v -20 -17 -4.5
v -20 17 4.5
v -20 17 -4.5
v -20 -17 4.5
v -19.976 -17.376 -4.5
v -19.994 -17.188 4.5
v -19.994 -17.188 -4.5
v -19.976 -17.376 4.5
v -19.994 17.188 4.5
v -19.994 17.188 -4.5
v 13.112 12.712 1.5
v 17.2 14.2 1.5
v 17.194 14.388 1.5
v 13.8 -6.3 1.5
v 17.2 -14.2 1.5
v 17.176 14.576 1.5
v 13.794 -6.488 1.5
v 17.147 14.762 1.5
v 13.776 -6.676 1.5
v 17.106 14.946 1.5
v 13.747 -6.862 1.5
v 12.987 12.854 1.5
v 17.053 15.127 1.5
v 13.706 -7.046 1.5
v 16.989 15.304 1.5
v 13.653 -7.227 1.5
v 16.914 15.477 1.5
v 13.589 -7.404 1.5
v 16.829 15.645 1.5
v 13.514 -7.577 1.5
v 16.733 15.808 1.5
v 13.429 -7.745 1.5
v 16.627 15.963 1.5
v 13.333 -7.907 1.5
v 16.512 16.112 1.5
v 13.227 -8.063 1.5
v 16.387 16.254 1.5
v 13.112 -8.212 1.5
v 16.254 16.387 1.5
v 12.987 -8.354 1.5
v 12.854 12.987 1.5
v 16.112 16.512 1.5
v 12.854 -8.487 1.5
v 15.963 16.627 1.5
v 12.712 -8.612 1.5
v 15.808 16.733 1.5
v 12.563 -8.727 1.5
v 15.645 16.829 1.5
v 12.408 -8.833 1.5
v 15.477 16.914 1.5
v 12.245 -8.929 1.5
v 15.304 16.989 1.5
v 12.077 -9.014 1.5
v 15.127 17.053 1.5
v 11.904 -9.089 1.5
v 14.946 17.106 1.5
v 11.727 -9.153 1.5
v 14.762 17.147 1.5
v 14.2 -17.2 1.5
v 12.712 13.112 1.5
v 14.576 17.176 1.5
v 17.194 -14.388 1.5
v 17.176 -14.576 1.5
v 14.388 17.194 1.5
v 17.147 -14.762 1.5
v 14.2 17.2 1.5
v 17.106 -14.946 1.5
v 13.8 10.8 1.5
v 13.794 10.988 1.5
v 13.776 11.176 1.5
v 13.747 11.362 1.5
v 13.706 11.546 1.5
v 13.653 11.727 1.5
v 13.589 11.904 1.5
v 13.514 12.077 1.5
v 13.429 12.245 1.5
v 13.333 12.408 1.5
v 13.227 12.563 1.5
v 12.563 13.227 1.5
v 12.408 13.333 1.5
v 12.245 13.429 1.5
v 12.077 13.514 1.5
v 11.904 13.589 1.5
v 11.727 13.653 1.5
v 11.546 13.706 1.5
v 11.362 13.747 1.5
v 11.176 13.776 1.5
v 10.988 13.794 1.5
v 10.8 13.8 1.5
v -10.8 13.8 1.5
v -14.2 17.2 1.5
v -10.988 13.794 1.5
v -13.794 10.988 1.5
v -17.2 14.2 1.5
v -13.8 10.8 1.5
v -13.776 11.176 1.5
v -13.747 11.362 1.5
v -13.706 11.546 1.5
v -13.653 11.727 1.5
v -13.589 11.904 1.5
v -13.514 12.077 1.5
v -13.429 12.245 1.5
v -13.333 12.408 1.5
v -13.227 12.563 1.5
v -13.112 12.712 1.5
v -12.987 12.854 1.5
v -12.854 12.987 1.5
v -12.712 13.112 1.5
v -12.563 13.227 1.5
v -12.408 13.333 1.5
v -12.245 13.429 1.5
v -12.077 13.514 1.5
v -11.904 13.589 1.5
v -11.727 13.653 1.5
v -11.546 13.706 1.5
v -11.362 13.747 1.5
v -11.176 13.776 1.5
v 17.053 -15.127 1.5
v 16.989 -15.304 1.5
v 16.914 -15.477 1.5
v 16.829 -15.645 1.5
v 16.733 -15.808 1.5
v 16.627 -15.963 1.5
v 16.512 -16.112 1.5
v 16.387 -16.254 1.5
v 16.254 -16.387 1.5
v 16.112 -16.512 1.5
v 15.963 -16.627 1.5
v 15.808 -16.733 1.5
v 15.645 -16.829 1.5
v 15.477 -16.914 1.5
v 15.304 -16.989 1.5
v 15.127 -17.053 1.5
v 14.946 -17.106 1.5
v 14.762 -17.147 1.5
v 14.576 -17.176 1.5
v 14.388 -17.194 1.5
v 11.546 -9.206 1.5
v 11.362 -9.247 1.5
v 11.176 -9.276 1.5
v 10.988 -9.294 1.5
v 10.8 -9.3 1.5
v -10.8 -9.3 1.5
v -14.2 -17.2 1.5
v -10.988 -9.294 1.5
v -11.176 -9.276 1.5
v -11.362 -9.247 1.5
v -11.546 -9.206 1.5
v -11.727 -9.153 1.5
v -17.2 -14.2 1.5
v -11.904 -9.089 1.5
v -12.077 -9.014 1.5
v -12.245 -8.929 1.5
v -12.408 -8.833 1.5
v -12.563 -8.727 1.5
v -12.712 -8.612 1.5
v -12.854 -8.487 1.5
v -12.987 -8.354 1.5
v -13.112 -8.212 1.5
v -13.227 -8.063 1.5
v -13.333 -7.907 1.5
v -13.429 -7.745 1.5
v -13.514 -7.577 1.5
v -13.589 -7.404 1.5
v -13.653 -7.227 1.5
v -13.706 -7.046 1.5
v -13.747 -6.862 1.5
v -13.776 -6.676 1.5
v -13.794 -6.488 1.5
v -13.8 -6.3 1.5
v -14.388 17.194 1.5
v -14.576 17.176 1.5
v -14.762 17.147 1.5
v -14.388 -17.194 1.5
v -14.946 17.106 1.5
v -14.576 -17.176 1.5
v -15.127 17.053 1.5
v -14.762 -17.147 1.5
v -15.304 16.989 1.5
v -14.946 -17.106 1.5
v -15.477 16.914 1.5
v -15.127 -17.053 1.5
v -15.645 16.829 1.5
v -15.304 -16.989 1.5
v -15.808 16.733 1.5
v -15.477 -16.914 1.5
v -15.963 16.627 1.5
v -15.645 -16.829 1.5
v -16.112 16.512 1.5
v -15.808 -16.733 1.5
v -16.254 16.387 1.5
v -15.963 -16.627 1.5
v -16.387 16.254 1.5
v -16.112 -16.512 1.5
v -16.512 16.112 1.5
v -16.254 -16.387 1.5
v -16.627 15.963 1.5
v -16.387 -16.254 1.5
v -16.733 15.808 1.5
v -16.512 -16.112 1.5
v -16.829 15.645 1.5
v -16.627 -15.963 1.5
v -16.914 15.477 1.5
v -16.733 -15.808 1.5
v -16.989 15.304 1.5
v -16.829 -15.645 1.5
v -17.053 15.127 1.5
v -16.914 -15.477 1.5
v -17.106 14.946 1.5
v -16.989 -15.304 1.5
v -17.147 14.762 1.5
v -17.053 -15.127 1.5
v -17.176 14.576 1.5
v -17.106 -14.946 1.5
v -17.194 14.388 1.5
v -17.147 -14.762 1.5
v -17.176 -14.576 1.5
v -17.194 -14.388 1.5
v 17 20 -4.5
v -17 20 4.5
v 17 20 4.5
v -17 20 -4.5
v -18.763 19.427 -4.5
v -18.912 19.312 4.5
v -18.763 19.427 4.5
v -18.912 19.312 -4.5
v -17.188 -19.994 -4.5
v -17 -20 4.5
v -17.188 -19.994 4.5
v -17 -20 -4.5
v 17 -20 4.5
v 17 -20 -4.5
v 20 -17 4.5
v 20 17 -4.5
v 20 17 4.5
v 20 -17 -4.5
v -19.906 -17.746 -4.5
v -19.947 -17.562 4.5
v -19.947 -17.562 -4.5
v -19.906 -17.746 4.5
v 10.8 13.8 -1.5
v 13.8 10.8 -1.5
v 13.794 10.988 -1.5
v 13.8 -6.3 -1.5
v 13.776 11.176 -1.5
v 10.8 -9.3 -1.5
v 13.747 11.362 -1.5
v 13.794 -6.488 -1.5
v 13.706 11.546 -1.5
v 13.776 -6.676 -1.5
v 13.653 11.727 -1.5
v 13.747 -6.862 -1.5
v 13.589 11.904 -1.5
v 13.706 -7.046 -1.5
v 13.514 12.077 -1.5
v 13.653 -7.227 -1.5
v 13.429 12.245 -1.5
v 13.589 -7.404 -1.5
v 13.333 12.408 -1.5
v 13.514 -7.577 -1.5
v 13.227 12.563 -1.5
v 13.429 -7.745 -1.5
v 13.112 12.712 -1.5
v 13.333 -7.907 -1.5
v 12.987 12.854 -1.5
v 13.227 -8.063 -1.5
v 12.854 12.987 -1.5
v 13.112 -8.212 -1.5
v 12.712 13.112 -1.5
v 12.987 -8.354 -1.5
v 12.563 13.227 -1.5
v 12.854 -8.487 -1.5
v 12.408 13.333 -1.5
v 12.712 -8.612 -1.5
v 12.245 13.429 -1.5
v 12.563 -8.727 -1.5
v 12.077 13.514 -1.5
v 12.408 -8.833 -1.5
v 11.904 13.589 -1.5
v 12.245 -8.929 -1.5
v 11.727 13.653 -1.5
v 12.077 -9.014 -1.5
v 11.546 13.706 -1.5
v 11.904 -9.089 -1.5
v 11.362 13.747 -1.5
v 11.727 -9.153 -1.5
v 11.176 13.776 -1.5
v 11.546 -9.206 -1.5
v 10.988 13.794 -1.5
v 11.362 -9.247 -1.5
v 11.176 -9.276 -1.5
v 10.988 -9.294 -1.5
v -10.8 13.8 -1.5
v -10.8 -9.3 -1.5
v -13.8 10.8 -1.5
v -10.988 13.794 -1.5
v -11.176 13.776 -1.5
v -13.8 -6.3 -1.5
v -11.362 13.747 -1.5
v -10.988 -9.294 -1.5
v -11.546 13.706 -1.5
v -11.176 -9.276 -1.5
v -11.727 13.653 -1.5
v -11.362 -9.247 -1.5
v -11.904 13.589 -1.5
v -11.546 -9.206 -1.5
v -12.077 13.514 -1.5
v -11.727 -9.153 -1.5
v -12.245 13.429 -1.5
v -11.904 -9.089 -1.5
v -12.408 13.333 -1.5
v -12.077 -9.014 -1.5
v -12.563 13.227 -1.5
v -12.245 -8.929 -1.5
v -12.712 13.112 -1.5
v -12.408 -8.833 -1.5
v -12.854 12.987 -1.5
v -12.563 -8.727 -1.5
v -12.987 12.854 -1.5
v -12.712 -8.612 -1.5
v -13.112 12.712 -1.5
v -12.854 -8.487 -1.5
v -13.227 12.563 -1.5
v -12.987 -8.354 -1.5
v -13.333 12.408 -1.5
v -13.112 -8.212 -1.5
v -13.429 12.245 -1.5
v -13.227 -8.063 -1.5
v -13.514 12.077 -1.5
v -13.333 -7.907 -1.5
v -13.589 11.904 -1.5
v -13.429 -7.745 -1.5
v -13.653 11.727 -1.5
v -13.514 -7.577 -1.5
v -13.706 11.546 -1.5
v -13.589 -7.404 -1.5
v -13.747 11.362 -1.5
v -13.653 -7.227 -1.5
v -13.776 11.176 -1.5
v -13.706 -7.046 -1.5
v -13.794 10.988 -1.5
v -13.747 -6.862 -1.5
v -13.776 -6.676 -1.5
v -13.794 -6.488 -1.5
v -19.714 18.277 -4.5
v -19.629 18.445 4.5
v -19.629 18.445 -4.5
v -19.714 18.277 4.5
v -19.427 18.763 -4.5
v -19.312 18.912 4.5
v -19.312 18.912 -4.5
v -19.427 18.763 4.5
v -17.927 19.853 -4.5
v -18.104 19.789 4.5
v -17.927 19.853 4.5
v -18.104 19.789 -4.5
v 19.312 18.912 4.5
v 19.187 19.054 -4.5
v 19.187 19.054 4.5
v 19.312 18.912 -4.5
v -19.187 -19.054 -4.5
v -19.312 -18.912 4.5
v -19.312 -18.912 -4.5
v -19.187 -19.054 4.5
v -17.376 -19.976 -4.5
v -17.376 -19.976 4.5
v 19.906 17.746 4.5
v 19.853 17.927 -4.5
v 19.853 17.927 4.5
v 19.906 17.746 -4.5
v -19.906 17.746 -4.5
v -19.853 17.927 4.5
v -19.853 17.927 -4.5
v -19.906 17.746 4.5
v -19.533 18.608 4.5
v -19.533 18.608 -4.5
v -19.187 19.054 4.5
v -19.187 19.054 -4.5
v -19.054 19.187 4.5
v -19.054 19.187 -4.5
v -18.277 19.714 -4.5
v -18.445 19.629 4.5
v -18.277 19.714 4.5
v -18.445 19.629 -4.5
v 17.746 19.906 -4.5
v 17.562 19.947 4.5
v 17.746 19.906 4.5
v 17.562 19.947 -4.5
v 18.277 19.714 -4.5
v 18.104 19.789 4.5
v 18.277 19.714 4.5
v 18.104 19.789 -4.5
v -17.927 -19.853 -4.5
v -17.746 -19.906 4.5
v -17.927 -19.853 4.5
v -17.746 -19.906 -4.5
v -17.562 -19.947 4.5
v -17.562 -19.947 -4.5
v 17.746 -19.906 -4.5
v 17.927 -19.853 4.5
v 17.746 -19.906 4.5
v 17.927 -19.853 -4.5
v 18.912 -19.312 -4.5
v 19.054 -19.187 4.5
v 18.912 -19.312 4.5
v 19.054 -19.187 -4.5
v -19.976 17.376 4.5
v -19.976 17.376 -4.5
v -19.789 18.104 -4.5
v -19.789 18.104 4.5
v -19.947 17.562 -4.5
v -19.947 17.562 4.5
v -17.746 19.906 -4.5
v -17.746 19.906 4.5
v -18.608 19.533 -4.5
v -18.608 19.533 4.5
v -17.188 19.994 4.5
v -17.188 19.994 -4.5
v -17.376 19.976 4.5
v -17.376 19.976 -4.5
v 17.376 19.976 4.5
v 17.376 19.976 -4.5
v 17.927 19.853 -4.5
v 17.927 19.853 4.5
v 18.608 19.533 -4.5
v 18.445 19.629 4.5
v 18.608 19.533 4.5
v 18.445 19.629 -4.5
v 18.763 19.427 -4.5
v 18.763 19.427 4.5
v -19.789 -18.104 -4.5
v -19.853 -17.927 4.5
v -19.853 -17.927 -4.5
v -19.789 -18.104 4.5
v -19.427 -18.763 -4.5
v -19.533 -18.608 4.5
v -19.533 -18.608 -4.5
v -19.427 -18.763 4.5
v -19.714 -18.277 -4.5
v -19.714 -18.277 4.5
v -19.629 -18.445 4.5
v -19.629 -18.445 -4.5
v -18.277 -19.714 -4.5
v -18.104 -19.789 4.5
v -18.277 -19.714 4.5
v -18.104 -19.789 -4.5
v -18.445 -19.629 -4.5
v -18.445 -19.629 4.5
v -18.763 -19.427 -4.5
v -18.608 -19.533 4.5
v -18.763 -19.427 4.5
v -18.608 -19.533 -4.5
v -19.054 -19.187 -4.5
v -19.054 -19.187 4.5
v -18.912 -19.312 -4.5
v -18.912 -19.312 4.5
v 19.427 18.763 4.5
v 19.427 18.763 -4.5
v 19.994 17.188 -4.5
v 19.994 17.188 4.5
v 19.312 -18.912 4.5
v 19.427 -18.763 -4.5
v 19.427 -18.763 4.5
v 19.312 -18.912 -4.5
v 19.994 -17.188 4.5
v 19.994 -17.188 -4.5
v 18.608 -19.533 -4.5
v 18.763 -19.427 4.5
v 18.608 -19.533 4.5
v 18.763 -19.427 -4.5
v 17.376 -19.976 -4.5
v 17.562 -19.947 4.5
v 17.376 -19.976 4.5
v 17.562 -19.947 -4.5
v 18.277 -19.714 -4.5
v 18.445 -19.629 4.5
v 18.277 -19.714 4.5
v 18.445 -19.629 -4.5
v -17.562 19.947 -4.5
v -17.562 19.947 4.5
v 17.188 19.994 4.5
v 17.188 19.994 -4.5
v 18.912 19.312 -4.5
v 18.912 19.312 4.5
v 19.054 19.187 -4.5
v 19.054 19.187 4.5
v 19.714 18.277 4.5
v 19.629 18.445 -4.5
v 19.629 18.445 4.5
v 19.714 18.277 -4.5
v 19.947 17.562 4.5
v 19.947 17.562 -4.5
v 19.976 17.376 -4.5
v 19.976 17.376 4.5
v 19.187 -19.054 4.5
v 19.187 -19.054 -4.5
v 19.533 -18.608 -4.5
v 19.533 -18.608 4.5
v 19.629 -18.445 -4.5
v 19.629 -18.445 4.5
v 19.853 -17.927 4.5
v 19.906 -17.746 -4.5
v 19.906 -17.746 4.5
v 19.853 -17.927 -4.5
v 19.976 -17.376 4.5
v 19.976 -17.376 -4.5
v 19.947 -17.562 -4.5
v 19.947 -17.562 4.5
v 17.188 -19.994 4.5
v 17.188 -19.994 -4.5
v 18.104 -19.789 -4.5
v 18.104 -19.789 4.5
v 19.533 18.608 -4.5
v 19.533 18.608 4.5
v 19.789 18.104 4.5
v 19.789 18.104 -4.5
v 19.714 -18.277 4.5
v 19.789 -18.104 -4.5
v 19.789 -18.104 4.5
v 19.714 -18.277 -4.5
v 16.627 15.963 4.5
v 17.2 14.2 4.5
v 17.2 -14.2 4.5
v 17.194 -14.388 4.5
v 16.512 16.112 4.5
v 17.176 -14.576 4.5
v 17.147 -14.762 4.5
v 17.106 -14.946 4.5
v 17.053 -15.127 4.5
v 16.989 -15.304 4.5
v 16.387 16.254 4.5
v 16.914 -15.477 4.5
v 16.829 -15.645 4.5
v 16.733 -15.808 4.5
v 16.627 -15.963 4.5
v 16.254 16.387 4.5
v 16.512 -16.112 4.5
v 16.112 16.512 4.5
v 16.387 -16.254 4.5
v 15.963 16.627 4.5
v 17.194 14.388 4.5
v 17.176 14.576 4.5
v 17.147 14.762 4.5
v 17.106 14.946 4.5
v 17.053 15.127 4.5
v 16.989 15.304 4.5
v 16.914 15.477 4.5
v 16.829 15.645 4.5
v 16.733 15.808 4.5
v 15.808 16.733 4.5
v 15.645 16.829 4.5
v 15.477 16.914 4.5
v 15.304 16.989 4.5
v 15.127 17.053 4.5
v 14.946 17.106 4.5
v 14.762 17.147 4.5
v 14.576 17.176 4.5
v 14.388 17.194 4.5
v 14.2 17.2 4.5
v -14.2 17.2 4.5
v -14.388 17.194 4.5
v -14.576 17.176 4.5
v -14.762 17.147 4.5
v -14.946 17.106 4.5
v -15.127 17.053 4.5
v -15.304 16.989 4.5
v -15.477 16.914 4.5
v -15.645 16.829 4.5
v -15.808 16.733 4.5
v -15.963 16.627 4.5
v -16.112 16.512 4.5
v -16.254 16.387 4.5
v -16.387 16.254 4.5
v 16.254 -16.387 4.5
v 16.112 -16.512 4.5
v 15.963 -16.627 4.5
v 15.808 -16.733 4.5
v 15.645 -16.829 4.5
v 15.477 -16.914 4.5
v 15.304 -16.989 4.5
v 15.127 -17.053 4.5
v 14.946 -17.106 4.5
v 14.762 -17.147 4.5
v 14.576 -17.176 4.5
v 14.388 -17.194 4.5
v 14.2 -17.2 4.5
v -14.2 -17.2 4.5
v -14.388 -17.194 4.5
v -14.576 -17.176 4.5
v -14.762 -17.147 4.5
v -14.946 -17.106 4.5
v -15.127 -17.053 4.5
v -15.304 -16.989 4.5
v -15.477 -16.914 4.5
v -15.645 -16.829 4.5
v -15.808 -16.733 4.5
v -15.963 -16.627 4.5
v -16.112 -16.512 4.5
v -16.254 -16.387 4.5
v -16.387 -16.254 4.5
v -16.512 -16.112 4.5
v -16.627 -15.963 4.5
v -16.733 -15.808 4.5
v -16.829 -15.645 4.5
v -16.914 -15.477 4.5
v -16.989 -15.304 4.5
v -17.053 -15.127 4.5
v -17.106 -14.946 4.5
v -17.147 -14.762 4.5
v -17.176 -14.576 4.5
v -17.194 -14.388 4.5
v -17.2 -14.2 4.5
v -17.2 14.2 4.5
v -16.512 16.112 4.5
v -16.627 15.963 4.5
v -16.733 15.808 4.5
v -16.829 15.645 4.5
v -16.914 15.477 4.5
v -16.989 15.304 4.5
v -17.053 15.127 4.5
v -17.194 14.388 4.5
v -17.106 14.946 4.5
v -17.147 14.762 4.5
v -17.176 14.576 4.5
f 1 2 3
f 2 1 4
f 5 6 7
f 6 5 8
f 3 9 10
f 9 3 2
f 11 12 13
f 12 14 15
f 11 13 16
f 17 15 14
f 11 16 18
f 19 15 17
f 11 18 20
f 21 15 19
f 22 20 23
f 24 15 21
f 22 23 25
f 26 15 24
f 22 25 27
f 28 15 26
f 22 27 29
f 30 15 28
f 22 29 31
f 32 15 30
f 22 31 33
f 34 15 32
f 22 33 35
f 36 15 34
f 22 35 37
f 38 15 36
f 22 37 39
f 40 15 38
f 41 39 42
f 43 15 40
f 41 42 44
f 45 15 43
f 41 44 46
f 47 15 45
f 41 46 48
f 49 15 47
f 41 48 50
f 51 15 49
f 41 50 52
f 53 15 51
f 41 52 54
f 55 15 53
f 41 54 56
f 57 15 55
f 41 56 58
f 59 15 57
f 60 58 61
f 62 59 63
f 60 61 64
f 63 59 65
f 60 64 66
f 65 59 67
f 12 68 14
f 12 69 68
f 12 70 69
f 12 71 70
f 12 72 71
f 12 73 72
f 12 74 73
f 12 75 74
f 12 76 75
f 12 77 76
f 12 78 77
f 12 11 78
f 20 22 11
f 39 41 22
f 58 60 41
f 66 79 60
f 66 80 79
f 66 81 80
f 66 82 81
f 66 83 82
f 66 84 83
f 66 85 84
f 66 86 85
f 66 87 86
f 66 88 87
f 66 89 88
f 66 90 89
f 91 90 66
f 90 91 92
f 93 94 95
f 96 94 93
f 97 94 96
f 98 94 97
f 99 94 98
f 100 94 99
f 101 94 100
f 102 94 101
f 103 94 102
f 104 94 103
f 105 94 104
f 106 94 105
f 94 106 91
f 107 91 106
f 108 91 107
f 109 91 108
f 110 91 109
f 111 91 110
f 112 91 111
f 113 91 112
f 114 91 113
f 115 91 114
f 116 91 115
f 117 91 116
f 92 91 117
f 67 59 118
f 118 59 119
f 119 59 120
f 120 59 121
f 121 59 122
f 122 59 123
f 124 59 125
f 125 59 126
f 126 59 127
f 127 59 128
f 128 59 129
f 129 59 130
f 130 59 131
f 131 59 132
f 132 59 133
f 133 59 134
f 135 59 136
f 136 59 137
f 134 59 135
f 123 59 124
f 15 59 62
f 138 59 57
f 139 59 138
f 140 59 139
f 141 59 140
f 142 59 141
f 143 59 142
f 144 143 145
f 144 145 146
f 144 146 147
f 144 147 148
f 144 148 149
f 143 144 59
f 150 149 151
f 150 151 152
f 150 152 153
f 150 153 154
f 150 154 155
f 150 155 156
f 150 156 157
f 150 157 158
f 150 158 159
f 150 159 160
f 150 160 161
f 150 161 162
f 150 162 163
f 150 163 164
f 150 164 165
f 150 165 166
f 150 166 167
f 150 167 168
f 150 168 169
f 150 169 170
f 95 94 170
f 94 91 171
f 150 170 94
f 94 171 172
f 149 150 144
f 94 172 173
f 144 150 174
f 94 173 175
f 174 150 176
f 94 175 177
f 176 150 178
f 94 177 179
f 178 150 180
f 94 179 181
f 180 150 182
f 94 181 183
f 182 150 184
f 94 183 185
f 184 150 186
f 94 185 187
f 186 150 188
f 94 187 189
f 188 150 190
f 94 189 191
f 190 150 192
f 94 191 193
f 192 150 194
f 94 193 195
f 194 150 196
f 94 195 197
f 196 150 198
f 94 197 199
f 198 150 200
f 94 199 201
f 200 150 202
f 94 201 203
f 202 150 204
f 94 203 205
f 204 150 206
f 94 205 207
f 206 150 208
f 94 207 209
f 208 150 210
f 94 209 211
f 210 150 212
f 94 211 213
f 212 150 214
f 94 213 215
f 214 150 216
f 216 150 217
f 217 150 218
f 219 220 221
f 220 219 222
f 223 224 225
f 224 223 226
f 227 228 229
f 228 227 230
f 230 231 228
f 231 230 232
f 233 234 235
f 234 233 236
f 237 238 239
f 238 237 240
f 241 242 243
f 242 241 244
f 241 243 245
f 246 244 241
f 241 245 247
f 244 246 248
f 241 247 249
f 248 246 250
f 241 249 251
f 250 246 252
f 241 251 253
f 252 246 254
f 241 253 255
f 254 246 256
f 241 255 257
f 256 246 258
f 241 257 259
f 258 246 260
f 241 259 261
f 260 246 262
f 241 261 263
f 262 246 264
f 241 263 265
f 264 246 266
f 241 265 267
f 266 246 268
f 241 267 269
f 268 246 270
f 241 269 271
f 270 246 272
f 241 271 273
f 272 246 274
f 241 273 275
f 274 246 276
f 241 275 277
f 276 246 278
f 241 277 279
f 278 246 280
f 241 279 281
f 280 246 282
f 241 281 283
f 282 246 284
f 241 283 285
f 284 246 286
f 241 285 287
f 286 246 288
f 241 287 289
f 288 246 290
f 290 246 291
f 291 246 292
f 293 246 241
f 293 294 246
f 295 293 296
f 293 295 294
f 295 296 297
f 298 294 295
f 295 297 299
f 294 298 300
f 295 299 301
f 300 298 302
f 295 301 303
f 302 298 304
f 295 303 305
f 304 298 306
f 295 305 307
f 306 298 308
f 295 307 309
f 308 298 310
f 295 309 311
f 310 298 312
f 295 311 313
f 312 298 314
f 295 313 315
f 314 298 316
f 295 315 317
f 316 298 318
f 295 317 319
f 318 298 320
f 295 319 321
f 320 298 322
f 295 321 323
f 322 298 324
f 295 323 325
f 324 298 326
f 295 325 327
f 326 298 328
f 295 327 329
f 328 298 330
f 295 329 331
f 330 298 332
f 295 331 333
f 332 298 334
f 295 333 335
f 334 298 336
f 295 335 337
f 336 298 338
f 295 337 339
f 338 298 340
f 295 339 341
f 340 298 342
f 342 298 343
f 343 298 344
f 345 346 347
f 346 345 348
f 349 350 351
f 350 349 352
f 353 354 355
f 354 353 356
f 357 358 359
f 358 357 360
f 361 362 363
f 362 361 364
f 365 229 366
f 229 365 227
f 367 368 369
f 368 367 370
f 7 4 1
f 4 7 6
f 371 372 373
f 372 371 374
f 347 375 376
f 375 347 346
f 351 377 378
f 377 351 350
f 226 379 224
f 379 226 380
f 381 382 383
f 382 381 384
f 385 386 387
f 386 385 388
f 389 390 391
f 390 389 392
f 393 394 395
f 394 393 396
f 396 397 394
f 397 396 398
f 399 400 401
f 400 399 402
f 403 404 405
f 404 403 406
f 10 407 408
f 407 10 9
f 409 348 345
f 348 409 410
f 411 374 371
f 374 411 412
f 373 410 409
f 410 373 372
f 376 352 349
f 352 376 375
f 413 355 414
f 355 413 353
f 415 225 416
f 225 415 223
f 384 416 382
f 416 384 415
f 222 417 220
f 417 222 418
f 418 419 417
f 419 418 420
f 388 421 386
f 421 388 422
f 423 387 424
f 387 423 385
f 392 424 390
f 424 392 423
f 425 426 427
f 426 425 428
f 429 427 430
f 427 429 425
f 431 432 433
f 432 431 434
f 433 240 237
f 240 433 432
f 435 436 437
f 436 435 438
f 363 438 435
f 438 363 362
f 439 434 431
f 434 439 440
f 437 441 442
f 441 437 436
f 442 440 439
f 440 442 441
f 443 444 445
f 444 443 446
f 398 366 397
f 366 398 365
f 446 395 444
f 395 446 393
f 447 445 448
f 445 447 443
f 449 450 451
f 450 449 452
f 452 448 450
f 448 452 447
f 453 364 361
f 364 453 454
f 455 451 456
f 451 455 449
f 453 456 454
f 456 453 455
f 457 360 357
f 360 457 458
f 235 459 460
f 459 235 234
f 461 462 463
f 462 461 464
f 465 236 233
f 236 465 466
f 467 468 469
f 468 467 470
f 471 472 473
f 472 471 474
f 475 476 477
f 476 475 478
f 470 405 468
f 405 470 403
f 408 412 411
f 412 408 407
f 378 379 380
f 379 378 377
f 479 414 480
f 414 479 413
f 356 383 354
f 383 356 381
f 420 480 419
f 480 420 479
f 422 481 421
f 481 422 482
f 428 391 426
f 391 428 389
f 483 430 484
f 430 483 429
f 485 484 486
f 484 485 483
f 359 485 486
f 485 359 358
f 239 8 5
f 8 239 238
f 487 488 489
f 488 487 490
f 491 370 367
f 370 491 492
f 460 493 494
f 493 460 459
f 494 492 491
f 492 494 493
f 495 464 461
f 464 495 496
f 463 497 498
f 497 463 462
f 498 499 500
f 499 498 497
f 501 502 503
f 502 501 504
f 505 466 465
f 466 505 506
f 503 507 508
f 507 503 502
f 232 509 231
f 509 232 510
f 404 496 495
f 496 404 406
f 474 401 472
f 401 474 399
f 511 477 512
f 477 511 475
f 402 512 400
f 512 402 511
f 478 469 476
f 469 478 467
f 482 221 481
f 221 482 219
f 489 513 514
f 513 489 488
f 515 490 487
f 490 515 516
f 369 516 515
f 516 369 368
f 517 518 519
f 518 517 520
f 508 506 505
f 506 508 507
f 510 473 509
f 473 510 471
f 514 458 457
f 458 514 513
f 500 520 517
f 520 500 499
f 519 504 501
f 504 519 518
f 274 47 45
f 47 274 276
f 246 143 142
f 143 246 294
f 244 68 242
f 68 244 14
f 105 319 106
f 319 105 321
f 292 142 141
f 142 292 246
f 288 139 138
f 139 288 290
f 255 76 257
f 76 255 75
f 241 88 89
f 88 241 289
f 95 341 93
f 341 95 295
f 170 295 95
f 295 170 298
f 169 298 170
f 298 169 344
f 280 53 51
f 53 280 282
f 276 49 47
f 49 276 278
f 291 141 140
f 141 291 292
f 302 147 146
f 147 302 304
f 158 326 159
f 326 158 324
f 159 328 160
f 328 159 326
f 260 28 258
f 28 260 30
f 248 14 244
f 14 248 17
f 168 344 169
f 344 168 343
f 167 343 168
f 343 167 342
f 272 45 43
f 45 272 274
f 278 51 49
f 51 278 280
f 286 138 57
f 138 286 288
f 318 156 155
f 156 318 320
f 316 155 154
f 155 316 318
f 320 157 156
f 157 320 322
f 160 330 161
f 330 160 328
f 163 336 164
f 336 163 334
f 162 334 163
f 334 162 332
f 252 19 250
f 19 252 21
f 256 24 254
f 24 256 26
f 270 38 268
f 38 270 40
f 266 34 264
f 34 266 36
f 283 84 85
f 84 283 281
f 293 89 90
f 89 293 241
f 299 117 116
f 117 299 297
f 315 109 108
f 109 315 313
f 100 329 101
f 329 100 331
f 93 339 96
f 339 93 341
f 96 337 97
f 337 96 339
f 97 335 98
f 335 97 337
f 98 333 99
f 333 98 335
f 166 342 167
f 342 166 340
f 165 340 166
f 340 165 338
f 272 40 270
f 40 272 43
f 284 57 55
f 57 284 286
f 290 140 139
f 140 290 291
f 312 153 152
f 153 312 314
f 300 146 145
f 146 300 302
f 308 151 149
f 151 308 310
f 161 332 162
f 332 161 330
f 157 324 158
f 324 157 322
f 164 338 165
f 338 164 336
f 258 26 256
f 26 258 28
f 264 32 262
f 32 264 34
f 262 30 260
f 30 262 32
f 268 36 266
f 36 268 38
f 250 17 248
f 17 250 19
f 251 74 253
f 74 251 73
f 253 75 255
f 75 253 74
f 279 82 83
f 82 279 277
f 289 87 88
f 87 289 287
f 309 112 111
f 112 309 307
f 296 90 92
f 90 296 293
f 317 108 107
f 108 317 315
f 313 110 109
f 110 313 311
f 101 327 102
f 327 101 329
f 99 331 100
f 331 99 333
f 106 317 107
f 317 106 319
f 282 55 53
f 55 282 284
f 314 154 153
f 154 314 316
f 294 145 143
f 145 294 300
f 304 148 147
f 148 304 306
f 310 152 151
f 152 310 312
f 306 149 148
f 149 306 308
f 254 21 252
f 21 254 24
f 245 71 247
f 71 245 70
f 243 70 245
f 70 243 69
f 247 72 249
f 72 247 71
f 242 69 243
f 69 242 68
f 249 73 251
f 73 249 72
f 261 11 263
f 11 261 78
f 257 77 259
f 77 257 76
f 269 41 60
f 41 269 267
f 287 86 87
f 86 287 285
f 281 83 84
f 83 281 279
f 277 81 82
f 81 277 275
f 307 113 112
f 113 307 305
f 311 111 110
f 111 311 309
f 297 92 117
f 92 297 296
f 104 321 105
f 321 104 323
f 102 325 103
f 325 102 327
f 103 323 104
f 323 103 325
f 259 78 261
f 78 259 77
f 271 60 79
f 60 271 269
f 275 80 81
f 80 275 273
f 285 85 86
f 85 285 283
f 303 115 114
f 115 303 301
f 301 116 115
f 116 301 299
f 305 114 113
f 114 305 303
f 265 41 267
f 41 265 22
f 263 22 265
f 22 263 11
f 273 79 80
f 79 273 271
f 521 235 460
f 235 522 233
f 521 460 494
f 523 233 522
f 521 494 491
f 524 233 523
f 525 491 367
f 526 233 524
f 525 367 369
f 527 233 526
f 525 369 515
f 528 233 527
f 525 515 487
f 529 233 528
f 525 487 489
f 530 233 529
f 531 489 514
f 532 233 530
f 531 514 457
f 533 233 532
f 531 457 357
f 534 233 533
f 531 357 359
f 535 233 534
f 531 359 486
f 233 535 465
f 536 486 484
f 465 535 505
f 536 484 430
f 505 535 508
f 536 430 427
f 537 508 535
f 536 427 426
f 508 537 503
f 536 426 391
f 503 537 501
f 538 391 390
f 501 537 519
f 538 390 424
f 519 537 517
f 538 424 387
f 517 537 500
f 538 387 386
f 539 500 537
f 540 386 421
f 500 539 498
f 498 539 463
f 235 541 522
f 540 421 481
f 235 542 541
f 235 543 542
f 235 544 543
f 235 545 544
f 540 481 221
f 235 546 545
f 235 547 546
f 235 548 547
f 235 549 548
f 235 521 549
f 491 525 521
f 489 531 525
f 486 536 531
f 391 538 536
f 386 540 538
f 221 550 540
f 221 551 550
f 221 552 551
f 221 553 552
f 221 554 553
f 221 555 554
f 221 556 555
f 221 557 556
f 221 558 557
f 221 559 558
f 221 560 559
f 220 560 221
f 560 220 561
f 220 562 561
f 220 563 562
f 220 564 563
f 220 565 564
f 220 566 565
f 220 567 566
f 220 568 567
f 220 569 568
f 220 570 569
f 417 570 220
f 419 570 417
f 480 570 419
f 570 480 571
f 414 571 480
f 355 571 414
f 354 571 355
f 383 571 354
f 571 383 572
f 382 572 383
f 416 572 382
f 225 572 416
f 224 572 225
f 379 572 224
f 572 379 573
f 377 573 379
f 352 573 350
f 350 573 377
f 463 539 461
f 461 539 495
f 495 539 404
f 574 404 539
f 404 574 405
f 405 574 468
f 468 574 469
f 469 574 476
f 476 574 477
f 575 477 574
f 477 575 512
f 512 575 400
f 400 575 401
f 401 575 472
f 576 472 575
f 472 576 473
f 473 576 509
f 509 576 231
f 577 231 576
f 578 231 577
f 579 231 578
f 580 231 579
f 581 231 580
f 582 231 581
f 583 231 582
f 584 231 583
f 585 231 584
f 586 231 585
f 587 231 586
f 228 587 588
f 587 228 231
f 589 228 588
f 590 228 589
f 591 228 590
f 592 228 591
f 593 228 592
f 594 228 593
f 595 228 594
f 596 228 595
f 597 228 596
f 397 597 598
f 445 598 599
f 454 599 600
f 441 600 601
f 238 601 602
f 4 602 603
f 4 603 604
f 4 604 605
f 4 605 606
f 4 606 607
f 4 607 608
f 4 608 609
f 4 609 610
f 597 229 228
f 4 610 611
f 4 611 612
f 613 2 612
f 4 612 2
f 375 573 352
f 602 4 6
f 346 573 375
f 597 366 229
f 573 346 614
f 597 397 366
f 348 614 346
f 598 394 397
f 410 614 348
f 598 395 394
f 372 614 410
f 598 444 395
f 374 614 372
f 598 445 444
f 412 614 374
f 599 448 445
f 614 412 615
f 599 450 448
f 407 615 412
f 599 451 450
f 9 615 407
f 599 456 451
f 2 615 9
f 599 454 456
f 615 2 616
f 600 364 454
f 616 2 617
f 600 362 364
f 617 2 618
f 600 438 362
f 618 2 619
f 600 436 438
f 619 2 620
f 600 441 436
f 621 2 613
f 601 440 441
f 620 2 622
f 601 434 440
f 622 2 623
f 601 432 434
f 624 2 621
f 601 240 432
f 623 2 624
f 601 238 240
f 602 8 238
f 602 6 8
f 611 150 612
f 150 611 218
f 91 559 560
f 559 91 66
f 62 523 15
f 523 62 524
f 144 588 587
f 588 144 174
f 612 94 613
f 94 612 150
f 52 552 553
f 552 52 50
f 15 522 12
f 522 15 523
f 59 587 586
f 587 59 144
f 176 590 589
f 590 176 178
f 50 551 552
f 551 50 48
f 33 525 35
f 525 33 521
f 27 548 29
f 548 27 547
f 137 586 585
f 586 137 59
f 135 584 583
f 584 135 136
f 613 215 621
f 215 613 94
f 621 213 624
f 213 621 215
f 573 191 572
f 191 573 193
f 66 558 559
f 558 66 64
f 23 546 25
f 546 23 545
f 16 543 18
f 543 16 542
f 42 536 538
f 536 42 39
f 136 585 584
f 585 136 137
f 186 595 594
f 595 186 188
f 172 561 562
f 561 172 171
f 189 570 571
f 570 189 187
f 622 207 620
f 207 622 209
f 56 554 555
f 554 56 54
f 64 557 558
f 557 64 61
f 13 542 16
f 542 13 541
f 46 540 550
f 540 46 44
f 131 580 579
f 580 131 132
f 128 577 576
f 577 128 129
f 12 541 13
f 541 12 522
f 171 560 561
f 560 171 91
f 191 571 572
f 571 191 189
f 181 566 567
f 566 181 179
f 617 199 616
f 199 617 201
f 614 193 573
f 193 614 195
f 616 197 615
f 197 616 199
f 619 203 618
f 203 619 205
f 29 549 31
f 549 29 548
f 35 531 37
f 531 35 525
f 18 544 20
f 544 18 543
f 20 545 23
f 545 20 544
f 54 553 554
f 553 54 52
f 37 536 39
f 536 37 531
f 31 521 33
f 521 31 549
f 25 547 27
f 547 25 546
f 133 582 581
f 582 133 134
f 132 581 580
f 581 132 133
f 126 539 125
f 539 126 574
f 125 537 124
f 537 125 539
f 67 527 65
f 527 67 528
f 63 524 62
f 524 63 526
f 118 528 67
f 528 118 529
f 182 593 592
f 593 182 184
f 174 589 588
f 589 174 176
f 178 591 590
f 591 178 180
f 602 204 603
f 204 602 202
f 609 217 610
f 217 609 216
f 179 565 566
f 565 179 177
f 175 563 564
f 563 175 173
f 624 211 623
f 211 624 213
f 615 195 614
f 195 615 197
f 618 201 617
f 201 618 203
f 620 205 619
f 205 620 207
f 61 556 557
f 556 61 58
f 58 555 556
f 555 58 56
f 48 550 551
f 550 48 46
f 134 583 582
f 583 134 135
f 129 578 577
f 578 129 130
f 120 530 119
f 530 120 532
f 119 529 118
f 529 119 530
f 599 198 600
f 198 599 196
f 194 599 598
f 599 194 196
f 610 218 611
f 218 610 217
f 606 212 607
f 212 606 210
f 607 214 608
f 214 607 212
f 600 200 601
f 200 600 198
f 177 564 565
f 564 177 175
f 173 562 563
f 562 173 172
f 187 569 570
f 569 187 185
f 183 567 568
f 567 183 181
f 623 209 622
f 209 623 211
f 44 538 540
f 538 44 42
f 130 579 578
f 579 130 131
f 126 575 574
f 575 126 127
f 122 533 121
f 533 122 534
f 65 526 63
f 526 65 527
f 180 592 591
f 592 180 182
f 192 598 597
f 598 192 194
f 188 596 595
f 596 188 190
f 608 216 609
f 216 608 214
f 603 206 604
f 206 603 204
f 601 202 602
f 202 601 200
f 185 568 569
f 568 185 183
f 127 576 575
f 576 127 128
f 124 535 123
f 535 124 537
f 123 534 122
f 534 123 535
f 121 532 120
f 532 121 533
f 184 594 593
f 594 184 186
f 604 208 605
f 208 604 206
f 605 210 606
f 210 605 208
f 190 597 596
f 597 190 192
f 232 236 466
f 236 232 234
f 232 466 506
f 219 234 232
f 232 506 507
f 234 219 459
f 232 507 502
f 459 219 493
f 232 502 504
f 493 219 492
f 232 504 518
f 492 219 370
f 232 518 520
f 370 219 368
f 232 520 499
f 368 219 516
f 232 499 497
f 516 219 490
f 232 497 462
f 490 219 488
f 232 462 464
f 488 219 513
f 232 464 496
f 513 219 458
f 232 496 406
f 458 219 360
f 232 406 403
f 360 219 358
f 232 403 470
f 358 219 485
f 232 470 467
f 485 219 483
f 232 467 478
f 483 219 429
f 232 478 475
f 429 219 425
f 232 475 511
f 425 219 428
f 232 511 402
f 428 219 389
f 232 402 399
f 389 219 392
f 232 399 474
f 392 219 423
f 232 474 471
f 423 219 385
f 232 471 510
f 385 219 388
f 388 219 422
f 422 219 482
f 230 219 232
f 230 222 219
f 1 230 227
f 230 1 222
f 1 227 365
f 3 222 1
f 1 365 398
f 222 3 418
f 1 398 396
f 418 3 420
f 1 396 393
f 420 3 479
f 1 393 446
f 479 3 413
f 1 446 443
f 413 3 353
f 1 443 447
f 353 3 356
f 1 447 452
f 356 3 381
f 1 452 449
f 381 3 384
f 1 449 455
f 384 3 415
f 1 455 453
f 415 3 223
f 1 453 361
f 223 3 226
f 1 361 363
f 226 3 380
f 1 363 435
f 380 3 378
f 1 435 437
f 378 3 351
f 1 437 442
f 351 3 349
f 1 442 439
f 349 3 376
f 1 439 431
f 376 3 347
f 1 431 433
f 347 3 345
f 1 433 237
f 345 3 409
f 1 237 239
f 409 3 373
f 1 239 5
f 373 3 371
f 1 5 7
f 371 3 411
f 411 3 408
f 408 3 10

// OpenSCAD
// render settings
fn  = 100;     // sides to render on cylinder
cut = 0.001;   // exact cutouts do not render

// Makes a cube shape with rounded corners in the z-direction
// dim[x,y,z] - vector containing outer dimensions of the cube
// rad        - radius of the rounded corners 
module RoundCorners(dim, rad) {
    // create adjusted dimensions for corners
    adjDim = [dim[0] - rad * 2, dim[1] - rad * 2, dim[2]];

    hull() {
        // place cylinders at each corner
        for (x = [1, -1])
            for (y = [1, -1])
                translate([x * adjDim[0] / 2,   y * adjDim[1] / 2, 0])
                    cylinder(h = adjDim[2], r = rad, center = true, $fn = fn);

        // place main body
        cube(adjDim, center = true);
    }
}

// clearances
clear = 0.2;    // clearance from load cell to wall

// load cell measured dimensions
loadCellX = 34;  // length and width of load cell
loadBaseX = 3;   // width of load cell base
loadBaseB = 7.5; // width of load cell base at the strain gauge

// wall thickness
wall = 3;        // wall thickness

roundR = 3;      // radius of rounded corners

// derived dimensions
base    = [loadCellX + wall * 2, loadCellX + wall * 2, wall];
baseCut = [loadCellX - (loadBaseX + clear) * 2, 
           loadCellX - loadBaseX - loadBaseB - clear * 2, 
           wall + cut];
wallCut = [loadCellX + clear * 2, 
           loadCellX + clear * 2, 
           base[2] + cut];
           
flatBase = [loadCellX + wall * 2, loadCellX + wall * 2, wall];

union() {
    // base with cutout for load cell to deflect
    difference() {
        RoundCorners(base, roundR);
        translate([0, (loadBaseB - loadBaseX) / 2, 0])
            RoundCorners(baseCut, roundR);
    }
    
    difference() {
        translate([0, 0, wall * -1])
            RoundCorners(flatBase, roundR);
    }

    // walls to hold load cell
    difference() {
        translate([0, 0, wall])
            RoundCorners(base, roundR);
        translate([0, 0, wall])
            RoundCorners(wallCut, roundR);
    }
}
